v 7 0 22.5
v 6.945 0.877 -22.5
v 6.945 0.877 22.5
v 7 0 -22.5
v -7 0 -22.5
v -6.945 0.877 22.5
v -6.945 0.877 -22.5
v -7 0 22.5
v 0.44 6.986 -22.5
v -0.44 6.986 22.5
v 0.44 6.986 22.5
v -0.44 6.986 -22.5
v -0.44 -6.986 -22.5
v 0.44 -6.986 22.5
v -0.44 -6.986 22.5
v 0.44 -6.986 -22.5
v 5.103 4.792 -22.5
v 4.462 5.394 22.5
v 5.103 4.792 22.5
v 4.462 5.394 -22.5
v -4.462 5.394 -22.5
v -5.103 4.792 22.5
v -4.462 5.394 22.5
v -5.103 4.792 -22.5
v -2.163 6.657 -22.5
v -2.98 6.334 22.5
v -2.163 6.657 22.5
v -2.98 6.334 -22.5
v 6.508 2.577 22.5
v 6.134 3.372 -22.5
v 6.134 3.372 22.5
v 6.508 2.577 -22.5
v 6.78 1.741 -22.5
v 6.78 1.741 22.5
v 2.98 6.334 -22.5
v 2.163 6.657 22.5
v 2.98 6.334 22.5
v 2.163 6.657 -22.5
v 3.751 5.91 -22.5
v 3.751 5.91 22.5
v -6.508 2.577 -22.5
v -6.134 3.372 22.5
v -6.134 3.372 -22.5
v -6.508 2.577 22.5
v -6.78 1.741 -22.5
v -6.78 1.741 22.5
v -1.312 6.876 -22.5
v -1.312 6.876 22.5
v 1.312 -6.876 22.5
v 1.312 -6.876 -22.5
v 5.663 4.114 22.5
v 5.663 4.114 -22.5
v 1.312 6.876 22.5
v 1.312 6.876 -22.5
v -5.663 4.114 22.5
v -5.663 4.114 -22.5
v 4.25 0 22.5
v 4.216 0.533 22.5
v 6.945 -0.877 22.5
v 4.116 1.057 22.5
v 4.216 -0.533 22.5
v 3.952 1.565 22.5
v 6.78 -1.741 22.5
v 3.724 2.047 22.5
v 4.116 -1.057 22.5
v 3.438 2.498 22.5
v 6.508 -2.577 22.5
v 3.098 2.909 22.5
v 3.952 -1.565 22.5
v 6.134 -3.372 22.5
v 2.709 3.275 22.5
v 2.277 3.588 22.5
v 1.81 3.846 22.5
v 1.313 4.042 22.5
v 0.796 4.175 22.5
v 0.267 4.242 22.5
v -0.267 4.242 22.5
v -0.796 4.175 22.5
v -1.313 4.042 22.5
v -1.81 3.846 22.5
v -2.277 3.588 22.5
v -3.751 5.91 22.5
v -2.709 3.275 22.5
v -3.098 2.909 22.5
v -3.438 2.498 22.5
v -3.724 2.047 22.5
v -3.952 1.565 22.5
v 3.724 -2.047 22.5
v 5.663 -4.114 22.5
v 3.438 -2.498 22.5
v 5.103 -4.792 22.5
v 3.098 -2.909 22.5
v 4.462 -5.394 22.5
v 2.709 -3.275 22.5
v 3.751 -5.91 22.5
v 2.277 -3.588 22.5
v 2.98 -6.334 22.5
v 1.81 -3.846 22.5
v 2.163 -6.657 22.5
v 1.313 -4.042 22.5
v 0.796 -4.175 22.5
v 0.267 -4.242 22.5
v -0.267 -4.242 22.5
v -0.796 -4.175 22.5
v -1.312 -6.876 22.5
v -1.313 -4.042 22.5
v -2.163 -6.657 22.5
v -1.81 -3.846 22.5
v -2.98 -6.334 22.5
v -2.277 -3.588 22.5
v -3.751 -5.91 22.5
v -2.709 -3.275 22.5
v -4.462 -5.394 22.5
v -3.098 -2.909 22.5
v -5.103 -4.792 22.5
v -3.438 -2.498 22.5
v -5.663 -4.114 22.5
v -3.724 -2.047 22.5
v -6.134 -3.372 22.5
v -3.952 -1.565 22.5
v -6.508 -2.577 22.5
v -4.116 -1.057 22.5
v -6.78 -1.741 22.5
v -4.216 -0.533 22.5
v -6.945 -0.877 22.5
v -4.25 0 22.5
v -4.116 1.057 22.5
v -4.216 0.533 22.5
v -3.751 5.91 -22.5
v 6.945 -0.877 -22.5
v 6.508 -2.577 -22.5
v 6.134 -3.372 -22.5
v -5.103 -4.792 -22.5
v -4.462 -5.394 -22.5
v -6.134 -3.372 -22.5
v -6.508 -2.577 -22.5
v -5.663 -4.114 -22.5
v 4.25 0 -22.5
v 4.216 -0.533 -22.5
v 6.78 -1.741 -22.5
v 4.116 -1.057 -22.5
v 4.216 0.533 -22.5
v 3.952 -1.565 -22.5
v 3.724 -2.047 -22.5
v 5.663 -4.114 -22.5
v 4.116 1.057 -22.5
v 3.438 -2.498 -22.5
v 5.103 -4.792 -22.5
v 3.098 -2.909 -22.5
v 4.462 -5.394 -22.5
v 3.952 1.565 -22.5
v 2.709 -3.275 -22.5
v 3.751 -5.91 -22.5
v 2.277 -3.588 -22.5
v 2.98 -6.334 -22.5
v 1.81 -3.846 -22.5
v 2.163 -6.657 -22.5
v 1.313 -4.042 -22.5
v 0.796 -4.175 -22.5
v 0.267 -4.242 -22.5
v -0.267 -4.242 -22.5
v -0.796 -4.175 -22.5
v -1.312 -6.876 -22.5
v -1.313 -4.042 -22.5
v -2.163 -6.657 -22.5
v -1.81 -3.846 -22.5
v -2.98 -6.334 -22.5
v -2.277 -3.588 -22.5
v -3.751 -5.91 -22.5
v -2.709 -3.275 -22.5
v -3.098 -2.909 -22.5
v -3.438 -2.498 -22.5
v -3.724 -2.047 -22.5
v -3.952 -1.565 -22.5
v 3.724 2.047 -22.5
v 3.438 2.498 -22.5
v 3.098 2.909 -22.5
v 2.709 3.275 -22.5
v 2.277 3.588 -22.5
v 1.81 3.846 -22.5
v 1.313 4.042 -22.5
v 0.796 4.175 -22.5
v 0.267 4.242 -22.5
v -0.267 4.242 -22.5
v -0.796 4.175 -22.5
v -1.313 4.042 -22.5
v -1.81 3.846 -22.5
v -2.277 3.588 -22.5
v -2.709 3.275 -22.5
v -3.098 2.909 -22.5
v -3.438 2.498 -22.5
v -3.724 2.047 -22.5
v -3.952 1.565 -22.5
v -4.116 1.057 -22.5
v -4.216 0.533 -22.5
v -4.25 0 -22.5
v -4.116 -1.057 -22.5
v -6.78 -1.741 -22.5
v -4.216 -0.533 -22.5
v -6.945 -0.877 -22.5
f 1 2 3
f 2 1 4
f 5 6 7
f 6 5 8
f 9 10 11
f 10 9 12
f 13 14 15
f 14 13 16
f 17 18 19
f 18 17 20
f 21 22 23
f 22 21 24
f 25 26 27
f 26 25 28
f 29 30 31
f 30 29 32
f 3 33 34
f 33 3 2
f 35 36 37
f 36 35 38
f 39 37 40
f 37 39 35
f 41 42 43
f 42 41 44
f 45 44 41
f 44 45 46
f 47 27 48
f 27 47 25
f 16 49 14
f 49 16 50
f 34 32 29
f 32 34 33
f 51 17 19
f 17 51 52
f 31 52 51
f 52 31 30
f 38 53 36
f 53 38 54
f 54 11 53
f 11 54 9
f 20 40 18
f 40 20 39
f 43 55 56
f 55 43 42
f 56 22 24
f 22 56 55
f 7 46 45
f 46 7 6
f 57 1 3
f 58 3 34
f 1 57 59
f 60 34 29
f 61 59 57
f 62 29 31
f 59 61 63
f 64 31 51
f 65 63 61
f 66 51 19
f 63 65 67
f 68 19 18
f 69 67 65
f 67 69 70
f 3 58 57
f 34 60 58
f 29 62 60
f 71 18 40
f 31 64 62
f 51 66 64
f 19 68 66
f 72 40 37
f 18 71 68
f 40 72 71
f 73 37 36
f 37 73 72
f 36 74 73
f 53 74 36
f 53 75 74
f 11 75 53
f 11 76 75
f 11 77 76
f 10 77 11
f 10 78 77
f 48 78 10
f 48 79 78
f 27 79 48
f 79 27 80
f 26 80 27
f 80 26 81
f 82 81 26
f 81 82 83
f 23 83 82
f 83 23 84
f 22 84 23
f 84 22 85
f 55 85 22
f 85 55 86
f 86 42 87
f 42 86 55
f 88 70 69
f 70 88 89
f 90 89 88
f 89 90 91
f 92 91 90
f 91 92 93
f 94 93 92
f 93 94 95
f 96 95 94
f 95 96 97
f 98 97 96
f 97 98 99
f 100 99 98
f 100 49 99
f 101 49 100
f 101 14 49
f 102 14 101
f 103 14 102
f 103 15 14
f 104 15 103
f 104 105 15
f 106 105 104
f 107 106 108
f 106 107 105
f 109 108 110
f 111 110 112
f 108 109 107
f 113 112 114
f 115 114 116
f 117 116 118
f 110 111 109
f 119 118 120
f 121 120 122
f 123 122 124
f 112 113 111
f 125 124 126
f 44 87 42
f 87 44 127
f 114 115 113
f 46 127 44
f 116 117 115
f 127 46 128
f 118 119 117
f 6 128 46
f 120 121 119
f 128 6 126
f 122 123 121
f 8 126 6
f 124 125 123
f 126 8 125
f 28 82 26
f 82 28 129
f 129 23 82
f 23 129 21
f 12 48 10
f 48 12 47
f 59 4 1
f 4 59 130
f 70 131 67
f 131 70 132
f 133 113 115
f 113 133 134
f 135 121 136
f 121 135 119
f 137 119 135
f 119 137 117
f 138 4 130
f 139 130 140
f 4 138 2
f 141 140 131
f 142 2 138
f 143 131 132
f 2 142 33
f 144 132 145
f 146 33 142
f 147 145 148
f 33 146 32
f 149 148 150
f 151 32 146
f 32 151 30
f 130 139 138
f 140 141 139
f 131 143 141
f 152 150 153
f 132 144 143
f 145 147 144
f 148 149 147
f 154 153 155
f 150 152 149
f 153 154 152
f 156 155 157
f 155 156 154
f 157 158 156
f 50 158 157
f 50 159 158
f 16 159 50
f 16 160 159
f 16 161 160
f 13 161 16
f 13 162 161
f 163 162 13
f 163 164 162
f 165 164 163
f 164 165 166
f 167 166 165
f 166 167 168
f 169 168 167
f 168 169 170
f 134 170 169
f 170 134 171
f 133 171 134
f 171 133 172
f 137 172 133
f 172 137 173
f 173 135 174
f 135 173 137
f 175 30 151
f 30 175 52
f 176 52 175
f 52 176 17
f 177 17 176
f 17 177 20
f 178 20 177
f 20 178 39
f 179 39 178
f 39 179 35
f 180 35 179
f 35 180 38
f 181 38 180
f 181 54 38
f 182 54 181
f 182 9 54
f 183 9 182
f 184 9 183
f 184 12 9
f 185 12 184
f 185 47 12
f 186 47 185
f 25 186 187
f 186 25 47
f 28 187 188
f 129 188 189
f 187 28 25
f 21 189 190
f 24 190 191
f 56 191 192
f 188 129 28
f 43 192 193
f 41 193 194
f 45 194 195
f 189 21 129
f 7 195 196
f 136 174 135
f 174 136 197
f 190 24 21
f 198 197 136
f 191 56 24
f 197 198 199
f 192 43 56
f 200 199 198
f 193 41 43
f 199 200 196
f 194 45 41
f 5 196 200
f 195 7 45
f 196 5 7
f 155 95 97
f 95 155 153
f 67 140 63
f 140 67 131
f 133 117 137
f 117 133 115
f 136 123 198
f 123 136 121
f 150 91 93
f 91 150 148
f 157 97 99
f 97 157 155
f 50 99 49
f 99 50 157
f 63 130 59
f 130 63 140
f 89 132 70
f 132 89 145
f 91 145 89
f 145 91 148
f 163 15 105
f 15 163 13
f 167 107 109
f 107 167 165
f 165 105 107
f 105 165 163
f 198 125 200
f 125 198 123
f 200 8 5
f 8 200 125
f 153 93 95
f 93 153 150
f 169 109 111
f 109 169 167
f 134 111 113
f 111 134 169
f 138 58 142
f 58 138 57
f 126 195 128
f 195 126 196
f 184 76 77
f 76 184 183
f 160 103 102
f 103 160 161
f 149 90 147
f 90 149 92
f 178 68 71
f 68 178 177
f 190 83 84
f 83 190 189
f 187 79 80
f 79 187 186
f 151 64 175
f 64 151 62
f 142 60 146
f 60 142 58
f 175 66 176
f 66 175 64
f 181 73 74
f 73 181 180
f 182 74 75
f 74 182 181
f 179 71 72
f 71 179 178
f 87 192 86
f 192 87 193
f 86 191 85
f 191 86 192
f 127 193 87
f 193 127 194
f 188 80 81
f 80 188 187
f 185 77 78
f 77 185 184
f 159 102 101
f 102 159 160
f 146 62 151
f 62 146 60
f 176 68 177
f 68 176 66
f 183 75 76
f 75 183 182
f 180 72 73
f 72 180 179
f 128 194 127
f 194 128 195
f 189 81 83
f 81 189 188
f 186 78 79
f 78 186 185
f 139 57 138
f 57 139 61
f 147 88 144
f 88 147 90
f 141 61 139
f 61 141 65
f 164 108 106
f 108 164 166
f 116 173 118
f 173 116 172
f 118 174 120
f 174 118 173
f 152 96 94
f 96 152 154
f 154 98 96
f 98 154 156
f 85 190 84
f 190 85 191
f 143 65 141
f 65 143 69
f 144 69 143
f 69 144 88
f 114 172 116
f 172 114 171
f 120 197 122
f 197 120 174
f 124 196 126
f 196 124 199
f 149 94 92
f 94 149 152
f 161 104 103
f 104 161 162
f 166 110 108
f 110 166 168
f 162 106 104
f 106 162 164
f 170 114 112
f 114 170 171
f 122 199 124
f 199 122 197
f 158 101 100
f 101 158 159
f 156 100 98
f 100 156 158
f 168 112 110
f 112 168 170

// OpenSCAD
$fn = 50;


difference() {
	union() {
		translate(v = [0, 0, -22.5000000000]) {
			cylinder(h = 45, r = 7.0000000000);
		}
	}
	union() {
		translate(v = [0, 0, -100.0000000000]) {
			cylinder(h = 200, r = 4.2500000000);
		}
	}
}
